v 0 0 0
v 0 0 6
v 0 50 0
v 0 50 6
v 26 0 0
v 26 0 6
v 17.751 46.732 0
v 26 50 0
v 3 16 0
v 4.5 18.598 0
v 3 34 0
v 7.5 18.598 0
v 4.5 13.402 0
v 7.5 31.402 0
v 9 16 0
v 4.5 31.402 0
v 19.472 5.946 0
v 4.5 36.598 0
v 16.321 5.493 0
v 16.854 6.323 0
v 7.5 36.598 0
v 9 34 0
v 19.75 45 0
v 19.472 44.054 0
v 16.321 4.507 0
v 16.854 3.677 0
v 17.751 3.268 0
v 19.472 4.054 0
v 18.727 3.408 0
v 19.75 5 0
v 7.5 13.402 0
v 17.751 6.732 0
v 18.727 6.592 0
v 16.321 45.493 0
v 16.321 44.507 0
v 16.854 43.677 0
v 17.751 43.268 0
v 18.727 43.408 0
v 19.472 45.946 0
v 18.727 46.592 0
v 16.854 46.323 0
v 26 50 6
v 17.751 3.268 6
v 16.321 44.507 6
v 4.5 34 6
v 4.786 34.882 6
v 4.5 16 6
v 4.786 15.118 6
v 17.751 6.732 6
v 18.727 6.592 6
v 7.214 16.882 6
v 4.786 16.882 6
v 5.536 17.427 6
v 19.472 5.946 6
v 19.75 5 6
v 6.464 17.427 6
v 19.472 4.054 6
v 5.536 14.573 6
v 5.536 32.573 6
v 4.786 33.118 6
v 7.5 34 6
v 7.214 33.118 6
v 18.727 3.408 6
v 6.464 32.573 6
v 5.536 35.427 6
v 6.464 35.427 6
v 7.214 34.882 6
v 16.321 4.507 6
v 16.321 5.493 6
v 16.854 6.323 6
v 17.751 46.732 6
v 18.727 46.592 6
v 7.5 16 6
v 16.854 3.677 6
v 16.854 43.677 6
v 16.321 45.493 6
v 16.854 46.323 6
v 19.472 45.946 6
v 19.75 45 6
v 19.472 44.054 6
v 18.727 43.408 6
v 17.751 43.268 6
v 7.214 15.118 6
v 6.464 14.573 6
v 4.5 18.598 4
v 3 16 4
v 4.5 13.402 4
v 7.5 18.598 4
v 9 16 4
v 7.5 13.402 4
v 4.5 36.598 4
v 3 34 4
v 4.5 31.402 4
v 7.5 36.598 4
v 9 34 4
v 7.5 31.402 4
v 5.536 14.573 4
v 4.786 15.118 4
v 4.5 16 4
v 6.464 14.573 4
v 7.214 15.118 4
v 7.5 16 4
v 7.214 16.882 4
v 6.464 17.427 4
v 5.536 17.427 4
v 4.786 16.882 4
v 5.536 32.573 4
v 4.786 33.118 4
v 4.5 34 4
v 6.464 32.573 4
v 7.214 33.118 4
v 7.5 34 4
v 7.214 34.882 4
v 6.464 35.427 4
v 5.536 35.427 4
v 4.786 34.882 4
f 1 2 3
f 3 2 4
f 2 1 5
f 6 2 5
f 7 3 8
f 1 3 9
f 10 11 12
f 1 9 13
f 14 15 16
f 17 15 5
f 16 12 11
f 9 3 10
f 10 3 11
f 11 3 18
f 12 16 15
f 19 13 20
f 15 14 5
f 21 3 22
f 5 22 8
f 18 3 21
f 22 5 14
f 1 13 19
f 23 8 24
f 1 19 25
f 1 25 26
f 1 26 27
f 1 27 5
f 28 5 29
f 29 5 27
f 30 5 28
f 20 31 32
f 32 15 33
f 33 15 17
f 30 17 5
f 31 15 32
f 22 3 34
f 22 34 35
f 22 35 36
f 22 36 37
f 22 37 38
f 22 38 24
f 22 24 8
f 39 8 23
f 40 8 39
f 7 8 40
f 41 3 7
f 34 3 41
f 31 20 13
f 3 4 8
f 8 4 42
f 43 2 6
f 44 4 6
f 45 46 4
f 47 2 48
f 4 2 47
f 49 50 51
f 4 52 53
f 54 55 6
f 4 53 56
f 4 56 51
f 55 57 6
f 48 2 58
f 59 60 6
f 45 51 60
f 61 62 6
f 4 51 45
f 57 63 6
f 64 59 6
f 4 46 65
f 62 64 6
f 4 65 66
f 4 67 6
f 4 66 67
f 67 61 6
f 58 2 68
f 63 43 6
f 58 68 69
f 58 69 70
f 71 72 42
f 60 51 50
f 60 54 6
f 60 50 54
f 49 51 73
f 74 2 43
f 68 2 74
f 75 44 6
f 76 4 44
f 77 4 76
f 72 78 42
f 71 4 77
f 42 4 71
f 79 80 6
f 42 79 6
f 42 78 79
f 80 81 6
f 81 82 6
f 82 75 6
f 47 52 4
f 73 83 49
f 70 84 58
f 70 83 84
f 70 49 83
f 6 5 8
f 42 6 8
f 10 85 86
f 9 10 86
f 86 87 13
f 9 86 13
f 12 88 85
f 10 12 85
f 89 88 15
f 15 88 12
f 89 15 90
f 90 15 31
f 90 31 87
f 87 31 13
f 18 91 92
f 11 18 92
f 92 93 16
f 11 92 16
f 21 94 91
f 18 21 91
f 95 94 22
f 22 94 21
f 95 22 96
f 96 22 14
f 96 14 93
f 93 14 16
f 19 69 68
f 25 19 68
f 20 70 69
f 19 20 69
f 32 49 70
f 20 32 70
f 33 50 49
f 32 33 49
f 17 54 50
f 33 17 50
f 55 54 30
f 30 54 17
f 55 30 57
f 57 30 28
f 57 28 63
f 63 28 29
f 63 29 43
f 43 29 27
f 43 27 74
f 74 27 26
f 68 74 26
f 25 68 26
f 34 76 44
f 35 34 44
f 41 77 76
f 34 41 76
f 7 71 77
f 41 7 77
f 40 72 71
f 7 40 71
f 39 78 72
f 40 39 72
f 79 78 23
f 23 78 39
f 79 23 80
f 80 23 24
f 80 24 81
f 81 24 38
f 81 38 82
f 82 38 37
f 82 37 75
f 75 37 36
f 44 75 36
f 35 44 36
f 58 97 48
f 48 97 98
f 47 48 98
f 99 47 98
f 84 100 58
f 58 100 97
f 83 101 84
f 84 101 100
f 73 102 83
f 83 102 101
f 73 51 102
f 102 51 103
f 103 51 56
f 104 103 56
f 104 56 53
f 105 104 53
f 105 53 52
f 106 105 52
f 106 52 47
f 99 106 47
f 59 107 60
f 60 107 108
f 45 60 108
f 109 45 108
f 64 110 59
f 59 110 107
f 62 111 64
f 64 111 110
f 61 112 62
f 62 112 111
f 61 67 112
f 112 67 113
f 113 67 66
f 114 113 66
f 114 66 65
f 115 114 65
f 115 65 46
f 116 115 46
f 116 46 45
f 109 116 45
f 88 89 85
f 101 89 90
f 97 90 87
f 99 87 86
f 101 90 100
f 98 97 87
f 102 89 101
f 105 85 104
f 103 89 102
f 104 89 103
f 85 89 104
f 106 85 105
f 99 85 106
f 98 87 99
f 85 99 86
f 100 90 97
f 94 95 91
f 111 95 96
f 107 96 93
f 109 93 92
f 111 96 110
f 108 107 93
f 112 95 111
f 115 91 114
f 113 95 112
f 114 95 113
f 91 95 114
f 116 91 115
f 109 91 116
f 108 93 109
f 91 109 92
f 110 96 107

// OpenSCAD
barwidth = 20;
width_ridge=4;
widthNema17=43;
nema17holeOffset =6;
nema17innerHole=25/2;
nema17Shaft=8/2;
motorThickNess=10;
offsetx =9;
offsety  =9;
barpositionz=30;
rodwidth =8;
nutwidth=14;

height = 50;
width = barwidth*1.3;

thickness=6;
spacing_bars = 50;
largeCircle = 70.0;
holeSize=5.5;
widthendstop=18;

holes = [
	[width/2+5,5,3.5],
	[width/2+5,height-5,3.5],
];



difference() {
union() {

cube([width,height,thickness],false);


}

		translate([ 6,height/2+widthendstop/2,-1]){
			cylinder(h=100,r=3/2, center = false, $fs=1);
			cylinder(h=5,r=6/2, center = false, $fn=6);
			}	
		translate([ 6,height/2-widthendstop/2,-1]){
			cylinder(h=100,r=3/2, center = false, $fs=1);
			cylinder(h=5,r=6/2, center = false, $fn=6);
			}	
	for(i = holes) {
		translate([ i[0],i[1],0])
			cylinder(h=100,r=i[2]/2, center = false, $fs=1);
	}

}	
